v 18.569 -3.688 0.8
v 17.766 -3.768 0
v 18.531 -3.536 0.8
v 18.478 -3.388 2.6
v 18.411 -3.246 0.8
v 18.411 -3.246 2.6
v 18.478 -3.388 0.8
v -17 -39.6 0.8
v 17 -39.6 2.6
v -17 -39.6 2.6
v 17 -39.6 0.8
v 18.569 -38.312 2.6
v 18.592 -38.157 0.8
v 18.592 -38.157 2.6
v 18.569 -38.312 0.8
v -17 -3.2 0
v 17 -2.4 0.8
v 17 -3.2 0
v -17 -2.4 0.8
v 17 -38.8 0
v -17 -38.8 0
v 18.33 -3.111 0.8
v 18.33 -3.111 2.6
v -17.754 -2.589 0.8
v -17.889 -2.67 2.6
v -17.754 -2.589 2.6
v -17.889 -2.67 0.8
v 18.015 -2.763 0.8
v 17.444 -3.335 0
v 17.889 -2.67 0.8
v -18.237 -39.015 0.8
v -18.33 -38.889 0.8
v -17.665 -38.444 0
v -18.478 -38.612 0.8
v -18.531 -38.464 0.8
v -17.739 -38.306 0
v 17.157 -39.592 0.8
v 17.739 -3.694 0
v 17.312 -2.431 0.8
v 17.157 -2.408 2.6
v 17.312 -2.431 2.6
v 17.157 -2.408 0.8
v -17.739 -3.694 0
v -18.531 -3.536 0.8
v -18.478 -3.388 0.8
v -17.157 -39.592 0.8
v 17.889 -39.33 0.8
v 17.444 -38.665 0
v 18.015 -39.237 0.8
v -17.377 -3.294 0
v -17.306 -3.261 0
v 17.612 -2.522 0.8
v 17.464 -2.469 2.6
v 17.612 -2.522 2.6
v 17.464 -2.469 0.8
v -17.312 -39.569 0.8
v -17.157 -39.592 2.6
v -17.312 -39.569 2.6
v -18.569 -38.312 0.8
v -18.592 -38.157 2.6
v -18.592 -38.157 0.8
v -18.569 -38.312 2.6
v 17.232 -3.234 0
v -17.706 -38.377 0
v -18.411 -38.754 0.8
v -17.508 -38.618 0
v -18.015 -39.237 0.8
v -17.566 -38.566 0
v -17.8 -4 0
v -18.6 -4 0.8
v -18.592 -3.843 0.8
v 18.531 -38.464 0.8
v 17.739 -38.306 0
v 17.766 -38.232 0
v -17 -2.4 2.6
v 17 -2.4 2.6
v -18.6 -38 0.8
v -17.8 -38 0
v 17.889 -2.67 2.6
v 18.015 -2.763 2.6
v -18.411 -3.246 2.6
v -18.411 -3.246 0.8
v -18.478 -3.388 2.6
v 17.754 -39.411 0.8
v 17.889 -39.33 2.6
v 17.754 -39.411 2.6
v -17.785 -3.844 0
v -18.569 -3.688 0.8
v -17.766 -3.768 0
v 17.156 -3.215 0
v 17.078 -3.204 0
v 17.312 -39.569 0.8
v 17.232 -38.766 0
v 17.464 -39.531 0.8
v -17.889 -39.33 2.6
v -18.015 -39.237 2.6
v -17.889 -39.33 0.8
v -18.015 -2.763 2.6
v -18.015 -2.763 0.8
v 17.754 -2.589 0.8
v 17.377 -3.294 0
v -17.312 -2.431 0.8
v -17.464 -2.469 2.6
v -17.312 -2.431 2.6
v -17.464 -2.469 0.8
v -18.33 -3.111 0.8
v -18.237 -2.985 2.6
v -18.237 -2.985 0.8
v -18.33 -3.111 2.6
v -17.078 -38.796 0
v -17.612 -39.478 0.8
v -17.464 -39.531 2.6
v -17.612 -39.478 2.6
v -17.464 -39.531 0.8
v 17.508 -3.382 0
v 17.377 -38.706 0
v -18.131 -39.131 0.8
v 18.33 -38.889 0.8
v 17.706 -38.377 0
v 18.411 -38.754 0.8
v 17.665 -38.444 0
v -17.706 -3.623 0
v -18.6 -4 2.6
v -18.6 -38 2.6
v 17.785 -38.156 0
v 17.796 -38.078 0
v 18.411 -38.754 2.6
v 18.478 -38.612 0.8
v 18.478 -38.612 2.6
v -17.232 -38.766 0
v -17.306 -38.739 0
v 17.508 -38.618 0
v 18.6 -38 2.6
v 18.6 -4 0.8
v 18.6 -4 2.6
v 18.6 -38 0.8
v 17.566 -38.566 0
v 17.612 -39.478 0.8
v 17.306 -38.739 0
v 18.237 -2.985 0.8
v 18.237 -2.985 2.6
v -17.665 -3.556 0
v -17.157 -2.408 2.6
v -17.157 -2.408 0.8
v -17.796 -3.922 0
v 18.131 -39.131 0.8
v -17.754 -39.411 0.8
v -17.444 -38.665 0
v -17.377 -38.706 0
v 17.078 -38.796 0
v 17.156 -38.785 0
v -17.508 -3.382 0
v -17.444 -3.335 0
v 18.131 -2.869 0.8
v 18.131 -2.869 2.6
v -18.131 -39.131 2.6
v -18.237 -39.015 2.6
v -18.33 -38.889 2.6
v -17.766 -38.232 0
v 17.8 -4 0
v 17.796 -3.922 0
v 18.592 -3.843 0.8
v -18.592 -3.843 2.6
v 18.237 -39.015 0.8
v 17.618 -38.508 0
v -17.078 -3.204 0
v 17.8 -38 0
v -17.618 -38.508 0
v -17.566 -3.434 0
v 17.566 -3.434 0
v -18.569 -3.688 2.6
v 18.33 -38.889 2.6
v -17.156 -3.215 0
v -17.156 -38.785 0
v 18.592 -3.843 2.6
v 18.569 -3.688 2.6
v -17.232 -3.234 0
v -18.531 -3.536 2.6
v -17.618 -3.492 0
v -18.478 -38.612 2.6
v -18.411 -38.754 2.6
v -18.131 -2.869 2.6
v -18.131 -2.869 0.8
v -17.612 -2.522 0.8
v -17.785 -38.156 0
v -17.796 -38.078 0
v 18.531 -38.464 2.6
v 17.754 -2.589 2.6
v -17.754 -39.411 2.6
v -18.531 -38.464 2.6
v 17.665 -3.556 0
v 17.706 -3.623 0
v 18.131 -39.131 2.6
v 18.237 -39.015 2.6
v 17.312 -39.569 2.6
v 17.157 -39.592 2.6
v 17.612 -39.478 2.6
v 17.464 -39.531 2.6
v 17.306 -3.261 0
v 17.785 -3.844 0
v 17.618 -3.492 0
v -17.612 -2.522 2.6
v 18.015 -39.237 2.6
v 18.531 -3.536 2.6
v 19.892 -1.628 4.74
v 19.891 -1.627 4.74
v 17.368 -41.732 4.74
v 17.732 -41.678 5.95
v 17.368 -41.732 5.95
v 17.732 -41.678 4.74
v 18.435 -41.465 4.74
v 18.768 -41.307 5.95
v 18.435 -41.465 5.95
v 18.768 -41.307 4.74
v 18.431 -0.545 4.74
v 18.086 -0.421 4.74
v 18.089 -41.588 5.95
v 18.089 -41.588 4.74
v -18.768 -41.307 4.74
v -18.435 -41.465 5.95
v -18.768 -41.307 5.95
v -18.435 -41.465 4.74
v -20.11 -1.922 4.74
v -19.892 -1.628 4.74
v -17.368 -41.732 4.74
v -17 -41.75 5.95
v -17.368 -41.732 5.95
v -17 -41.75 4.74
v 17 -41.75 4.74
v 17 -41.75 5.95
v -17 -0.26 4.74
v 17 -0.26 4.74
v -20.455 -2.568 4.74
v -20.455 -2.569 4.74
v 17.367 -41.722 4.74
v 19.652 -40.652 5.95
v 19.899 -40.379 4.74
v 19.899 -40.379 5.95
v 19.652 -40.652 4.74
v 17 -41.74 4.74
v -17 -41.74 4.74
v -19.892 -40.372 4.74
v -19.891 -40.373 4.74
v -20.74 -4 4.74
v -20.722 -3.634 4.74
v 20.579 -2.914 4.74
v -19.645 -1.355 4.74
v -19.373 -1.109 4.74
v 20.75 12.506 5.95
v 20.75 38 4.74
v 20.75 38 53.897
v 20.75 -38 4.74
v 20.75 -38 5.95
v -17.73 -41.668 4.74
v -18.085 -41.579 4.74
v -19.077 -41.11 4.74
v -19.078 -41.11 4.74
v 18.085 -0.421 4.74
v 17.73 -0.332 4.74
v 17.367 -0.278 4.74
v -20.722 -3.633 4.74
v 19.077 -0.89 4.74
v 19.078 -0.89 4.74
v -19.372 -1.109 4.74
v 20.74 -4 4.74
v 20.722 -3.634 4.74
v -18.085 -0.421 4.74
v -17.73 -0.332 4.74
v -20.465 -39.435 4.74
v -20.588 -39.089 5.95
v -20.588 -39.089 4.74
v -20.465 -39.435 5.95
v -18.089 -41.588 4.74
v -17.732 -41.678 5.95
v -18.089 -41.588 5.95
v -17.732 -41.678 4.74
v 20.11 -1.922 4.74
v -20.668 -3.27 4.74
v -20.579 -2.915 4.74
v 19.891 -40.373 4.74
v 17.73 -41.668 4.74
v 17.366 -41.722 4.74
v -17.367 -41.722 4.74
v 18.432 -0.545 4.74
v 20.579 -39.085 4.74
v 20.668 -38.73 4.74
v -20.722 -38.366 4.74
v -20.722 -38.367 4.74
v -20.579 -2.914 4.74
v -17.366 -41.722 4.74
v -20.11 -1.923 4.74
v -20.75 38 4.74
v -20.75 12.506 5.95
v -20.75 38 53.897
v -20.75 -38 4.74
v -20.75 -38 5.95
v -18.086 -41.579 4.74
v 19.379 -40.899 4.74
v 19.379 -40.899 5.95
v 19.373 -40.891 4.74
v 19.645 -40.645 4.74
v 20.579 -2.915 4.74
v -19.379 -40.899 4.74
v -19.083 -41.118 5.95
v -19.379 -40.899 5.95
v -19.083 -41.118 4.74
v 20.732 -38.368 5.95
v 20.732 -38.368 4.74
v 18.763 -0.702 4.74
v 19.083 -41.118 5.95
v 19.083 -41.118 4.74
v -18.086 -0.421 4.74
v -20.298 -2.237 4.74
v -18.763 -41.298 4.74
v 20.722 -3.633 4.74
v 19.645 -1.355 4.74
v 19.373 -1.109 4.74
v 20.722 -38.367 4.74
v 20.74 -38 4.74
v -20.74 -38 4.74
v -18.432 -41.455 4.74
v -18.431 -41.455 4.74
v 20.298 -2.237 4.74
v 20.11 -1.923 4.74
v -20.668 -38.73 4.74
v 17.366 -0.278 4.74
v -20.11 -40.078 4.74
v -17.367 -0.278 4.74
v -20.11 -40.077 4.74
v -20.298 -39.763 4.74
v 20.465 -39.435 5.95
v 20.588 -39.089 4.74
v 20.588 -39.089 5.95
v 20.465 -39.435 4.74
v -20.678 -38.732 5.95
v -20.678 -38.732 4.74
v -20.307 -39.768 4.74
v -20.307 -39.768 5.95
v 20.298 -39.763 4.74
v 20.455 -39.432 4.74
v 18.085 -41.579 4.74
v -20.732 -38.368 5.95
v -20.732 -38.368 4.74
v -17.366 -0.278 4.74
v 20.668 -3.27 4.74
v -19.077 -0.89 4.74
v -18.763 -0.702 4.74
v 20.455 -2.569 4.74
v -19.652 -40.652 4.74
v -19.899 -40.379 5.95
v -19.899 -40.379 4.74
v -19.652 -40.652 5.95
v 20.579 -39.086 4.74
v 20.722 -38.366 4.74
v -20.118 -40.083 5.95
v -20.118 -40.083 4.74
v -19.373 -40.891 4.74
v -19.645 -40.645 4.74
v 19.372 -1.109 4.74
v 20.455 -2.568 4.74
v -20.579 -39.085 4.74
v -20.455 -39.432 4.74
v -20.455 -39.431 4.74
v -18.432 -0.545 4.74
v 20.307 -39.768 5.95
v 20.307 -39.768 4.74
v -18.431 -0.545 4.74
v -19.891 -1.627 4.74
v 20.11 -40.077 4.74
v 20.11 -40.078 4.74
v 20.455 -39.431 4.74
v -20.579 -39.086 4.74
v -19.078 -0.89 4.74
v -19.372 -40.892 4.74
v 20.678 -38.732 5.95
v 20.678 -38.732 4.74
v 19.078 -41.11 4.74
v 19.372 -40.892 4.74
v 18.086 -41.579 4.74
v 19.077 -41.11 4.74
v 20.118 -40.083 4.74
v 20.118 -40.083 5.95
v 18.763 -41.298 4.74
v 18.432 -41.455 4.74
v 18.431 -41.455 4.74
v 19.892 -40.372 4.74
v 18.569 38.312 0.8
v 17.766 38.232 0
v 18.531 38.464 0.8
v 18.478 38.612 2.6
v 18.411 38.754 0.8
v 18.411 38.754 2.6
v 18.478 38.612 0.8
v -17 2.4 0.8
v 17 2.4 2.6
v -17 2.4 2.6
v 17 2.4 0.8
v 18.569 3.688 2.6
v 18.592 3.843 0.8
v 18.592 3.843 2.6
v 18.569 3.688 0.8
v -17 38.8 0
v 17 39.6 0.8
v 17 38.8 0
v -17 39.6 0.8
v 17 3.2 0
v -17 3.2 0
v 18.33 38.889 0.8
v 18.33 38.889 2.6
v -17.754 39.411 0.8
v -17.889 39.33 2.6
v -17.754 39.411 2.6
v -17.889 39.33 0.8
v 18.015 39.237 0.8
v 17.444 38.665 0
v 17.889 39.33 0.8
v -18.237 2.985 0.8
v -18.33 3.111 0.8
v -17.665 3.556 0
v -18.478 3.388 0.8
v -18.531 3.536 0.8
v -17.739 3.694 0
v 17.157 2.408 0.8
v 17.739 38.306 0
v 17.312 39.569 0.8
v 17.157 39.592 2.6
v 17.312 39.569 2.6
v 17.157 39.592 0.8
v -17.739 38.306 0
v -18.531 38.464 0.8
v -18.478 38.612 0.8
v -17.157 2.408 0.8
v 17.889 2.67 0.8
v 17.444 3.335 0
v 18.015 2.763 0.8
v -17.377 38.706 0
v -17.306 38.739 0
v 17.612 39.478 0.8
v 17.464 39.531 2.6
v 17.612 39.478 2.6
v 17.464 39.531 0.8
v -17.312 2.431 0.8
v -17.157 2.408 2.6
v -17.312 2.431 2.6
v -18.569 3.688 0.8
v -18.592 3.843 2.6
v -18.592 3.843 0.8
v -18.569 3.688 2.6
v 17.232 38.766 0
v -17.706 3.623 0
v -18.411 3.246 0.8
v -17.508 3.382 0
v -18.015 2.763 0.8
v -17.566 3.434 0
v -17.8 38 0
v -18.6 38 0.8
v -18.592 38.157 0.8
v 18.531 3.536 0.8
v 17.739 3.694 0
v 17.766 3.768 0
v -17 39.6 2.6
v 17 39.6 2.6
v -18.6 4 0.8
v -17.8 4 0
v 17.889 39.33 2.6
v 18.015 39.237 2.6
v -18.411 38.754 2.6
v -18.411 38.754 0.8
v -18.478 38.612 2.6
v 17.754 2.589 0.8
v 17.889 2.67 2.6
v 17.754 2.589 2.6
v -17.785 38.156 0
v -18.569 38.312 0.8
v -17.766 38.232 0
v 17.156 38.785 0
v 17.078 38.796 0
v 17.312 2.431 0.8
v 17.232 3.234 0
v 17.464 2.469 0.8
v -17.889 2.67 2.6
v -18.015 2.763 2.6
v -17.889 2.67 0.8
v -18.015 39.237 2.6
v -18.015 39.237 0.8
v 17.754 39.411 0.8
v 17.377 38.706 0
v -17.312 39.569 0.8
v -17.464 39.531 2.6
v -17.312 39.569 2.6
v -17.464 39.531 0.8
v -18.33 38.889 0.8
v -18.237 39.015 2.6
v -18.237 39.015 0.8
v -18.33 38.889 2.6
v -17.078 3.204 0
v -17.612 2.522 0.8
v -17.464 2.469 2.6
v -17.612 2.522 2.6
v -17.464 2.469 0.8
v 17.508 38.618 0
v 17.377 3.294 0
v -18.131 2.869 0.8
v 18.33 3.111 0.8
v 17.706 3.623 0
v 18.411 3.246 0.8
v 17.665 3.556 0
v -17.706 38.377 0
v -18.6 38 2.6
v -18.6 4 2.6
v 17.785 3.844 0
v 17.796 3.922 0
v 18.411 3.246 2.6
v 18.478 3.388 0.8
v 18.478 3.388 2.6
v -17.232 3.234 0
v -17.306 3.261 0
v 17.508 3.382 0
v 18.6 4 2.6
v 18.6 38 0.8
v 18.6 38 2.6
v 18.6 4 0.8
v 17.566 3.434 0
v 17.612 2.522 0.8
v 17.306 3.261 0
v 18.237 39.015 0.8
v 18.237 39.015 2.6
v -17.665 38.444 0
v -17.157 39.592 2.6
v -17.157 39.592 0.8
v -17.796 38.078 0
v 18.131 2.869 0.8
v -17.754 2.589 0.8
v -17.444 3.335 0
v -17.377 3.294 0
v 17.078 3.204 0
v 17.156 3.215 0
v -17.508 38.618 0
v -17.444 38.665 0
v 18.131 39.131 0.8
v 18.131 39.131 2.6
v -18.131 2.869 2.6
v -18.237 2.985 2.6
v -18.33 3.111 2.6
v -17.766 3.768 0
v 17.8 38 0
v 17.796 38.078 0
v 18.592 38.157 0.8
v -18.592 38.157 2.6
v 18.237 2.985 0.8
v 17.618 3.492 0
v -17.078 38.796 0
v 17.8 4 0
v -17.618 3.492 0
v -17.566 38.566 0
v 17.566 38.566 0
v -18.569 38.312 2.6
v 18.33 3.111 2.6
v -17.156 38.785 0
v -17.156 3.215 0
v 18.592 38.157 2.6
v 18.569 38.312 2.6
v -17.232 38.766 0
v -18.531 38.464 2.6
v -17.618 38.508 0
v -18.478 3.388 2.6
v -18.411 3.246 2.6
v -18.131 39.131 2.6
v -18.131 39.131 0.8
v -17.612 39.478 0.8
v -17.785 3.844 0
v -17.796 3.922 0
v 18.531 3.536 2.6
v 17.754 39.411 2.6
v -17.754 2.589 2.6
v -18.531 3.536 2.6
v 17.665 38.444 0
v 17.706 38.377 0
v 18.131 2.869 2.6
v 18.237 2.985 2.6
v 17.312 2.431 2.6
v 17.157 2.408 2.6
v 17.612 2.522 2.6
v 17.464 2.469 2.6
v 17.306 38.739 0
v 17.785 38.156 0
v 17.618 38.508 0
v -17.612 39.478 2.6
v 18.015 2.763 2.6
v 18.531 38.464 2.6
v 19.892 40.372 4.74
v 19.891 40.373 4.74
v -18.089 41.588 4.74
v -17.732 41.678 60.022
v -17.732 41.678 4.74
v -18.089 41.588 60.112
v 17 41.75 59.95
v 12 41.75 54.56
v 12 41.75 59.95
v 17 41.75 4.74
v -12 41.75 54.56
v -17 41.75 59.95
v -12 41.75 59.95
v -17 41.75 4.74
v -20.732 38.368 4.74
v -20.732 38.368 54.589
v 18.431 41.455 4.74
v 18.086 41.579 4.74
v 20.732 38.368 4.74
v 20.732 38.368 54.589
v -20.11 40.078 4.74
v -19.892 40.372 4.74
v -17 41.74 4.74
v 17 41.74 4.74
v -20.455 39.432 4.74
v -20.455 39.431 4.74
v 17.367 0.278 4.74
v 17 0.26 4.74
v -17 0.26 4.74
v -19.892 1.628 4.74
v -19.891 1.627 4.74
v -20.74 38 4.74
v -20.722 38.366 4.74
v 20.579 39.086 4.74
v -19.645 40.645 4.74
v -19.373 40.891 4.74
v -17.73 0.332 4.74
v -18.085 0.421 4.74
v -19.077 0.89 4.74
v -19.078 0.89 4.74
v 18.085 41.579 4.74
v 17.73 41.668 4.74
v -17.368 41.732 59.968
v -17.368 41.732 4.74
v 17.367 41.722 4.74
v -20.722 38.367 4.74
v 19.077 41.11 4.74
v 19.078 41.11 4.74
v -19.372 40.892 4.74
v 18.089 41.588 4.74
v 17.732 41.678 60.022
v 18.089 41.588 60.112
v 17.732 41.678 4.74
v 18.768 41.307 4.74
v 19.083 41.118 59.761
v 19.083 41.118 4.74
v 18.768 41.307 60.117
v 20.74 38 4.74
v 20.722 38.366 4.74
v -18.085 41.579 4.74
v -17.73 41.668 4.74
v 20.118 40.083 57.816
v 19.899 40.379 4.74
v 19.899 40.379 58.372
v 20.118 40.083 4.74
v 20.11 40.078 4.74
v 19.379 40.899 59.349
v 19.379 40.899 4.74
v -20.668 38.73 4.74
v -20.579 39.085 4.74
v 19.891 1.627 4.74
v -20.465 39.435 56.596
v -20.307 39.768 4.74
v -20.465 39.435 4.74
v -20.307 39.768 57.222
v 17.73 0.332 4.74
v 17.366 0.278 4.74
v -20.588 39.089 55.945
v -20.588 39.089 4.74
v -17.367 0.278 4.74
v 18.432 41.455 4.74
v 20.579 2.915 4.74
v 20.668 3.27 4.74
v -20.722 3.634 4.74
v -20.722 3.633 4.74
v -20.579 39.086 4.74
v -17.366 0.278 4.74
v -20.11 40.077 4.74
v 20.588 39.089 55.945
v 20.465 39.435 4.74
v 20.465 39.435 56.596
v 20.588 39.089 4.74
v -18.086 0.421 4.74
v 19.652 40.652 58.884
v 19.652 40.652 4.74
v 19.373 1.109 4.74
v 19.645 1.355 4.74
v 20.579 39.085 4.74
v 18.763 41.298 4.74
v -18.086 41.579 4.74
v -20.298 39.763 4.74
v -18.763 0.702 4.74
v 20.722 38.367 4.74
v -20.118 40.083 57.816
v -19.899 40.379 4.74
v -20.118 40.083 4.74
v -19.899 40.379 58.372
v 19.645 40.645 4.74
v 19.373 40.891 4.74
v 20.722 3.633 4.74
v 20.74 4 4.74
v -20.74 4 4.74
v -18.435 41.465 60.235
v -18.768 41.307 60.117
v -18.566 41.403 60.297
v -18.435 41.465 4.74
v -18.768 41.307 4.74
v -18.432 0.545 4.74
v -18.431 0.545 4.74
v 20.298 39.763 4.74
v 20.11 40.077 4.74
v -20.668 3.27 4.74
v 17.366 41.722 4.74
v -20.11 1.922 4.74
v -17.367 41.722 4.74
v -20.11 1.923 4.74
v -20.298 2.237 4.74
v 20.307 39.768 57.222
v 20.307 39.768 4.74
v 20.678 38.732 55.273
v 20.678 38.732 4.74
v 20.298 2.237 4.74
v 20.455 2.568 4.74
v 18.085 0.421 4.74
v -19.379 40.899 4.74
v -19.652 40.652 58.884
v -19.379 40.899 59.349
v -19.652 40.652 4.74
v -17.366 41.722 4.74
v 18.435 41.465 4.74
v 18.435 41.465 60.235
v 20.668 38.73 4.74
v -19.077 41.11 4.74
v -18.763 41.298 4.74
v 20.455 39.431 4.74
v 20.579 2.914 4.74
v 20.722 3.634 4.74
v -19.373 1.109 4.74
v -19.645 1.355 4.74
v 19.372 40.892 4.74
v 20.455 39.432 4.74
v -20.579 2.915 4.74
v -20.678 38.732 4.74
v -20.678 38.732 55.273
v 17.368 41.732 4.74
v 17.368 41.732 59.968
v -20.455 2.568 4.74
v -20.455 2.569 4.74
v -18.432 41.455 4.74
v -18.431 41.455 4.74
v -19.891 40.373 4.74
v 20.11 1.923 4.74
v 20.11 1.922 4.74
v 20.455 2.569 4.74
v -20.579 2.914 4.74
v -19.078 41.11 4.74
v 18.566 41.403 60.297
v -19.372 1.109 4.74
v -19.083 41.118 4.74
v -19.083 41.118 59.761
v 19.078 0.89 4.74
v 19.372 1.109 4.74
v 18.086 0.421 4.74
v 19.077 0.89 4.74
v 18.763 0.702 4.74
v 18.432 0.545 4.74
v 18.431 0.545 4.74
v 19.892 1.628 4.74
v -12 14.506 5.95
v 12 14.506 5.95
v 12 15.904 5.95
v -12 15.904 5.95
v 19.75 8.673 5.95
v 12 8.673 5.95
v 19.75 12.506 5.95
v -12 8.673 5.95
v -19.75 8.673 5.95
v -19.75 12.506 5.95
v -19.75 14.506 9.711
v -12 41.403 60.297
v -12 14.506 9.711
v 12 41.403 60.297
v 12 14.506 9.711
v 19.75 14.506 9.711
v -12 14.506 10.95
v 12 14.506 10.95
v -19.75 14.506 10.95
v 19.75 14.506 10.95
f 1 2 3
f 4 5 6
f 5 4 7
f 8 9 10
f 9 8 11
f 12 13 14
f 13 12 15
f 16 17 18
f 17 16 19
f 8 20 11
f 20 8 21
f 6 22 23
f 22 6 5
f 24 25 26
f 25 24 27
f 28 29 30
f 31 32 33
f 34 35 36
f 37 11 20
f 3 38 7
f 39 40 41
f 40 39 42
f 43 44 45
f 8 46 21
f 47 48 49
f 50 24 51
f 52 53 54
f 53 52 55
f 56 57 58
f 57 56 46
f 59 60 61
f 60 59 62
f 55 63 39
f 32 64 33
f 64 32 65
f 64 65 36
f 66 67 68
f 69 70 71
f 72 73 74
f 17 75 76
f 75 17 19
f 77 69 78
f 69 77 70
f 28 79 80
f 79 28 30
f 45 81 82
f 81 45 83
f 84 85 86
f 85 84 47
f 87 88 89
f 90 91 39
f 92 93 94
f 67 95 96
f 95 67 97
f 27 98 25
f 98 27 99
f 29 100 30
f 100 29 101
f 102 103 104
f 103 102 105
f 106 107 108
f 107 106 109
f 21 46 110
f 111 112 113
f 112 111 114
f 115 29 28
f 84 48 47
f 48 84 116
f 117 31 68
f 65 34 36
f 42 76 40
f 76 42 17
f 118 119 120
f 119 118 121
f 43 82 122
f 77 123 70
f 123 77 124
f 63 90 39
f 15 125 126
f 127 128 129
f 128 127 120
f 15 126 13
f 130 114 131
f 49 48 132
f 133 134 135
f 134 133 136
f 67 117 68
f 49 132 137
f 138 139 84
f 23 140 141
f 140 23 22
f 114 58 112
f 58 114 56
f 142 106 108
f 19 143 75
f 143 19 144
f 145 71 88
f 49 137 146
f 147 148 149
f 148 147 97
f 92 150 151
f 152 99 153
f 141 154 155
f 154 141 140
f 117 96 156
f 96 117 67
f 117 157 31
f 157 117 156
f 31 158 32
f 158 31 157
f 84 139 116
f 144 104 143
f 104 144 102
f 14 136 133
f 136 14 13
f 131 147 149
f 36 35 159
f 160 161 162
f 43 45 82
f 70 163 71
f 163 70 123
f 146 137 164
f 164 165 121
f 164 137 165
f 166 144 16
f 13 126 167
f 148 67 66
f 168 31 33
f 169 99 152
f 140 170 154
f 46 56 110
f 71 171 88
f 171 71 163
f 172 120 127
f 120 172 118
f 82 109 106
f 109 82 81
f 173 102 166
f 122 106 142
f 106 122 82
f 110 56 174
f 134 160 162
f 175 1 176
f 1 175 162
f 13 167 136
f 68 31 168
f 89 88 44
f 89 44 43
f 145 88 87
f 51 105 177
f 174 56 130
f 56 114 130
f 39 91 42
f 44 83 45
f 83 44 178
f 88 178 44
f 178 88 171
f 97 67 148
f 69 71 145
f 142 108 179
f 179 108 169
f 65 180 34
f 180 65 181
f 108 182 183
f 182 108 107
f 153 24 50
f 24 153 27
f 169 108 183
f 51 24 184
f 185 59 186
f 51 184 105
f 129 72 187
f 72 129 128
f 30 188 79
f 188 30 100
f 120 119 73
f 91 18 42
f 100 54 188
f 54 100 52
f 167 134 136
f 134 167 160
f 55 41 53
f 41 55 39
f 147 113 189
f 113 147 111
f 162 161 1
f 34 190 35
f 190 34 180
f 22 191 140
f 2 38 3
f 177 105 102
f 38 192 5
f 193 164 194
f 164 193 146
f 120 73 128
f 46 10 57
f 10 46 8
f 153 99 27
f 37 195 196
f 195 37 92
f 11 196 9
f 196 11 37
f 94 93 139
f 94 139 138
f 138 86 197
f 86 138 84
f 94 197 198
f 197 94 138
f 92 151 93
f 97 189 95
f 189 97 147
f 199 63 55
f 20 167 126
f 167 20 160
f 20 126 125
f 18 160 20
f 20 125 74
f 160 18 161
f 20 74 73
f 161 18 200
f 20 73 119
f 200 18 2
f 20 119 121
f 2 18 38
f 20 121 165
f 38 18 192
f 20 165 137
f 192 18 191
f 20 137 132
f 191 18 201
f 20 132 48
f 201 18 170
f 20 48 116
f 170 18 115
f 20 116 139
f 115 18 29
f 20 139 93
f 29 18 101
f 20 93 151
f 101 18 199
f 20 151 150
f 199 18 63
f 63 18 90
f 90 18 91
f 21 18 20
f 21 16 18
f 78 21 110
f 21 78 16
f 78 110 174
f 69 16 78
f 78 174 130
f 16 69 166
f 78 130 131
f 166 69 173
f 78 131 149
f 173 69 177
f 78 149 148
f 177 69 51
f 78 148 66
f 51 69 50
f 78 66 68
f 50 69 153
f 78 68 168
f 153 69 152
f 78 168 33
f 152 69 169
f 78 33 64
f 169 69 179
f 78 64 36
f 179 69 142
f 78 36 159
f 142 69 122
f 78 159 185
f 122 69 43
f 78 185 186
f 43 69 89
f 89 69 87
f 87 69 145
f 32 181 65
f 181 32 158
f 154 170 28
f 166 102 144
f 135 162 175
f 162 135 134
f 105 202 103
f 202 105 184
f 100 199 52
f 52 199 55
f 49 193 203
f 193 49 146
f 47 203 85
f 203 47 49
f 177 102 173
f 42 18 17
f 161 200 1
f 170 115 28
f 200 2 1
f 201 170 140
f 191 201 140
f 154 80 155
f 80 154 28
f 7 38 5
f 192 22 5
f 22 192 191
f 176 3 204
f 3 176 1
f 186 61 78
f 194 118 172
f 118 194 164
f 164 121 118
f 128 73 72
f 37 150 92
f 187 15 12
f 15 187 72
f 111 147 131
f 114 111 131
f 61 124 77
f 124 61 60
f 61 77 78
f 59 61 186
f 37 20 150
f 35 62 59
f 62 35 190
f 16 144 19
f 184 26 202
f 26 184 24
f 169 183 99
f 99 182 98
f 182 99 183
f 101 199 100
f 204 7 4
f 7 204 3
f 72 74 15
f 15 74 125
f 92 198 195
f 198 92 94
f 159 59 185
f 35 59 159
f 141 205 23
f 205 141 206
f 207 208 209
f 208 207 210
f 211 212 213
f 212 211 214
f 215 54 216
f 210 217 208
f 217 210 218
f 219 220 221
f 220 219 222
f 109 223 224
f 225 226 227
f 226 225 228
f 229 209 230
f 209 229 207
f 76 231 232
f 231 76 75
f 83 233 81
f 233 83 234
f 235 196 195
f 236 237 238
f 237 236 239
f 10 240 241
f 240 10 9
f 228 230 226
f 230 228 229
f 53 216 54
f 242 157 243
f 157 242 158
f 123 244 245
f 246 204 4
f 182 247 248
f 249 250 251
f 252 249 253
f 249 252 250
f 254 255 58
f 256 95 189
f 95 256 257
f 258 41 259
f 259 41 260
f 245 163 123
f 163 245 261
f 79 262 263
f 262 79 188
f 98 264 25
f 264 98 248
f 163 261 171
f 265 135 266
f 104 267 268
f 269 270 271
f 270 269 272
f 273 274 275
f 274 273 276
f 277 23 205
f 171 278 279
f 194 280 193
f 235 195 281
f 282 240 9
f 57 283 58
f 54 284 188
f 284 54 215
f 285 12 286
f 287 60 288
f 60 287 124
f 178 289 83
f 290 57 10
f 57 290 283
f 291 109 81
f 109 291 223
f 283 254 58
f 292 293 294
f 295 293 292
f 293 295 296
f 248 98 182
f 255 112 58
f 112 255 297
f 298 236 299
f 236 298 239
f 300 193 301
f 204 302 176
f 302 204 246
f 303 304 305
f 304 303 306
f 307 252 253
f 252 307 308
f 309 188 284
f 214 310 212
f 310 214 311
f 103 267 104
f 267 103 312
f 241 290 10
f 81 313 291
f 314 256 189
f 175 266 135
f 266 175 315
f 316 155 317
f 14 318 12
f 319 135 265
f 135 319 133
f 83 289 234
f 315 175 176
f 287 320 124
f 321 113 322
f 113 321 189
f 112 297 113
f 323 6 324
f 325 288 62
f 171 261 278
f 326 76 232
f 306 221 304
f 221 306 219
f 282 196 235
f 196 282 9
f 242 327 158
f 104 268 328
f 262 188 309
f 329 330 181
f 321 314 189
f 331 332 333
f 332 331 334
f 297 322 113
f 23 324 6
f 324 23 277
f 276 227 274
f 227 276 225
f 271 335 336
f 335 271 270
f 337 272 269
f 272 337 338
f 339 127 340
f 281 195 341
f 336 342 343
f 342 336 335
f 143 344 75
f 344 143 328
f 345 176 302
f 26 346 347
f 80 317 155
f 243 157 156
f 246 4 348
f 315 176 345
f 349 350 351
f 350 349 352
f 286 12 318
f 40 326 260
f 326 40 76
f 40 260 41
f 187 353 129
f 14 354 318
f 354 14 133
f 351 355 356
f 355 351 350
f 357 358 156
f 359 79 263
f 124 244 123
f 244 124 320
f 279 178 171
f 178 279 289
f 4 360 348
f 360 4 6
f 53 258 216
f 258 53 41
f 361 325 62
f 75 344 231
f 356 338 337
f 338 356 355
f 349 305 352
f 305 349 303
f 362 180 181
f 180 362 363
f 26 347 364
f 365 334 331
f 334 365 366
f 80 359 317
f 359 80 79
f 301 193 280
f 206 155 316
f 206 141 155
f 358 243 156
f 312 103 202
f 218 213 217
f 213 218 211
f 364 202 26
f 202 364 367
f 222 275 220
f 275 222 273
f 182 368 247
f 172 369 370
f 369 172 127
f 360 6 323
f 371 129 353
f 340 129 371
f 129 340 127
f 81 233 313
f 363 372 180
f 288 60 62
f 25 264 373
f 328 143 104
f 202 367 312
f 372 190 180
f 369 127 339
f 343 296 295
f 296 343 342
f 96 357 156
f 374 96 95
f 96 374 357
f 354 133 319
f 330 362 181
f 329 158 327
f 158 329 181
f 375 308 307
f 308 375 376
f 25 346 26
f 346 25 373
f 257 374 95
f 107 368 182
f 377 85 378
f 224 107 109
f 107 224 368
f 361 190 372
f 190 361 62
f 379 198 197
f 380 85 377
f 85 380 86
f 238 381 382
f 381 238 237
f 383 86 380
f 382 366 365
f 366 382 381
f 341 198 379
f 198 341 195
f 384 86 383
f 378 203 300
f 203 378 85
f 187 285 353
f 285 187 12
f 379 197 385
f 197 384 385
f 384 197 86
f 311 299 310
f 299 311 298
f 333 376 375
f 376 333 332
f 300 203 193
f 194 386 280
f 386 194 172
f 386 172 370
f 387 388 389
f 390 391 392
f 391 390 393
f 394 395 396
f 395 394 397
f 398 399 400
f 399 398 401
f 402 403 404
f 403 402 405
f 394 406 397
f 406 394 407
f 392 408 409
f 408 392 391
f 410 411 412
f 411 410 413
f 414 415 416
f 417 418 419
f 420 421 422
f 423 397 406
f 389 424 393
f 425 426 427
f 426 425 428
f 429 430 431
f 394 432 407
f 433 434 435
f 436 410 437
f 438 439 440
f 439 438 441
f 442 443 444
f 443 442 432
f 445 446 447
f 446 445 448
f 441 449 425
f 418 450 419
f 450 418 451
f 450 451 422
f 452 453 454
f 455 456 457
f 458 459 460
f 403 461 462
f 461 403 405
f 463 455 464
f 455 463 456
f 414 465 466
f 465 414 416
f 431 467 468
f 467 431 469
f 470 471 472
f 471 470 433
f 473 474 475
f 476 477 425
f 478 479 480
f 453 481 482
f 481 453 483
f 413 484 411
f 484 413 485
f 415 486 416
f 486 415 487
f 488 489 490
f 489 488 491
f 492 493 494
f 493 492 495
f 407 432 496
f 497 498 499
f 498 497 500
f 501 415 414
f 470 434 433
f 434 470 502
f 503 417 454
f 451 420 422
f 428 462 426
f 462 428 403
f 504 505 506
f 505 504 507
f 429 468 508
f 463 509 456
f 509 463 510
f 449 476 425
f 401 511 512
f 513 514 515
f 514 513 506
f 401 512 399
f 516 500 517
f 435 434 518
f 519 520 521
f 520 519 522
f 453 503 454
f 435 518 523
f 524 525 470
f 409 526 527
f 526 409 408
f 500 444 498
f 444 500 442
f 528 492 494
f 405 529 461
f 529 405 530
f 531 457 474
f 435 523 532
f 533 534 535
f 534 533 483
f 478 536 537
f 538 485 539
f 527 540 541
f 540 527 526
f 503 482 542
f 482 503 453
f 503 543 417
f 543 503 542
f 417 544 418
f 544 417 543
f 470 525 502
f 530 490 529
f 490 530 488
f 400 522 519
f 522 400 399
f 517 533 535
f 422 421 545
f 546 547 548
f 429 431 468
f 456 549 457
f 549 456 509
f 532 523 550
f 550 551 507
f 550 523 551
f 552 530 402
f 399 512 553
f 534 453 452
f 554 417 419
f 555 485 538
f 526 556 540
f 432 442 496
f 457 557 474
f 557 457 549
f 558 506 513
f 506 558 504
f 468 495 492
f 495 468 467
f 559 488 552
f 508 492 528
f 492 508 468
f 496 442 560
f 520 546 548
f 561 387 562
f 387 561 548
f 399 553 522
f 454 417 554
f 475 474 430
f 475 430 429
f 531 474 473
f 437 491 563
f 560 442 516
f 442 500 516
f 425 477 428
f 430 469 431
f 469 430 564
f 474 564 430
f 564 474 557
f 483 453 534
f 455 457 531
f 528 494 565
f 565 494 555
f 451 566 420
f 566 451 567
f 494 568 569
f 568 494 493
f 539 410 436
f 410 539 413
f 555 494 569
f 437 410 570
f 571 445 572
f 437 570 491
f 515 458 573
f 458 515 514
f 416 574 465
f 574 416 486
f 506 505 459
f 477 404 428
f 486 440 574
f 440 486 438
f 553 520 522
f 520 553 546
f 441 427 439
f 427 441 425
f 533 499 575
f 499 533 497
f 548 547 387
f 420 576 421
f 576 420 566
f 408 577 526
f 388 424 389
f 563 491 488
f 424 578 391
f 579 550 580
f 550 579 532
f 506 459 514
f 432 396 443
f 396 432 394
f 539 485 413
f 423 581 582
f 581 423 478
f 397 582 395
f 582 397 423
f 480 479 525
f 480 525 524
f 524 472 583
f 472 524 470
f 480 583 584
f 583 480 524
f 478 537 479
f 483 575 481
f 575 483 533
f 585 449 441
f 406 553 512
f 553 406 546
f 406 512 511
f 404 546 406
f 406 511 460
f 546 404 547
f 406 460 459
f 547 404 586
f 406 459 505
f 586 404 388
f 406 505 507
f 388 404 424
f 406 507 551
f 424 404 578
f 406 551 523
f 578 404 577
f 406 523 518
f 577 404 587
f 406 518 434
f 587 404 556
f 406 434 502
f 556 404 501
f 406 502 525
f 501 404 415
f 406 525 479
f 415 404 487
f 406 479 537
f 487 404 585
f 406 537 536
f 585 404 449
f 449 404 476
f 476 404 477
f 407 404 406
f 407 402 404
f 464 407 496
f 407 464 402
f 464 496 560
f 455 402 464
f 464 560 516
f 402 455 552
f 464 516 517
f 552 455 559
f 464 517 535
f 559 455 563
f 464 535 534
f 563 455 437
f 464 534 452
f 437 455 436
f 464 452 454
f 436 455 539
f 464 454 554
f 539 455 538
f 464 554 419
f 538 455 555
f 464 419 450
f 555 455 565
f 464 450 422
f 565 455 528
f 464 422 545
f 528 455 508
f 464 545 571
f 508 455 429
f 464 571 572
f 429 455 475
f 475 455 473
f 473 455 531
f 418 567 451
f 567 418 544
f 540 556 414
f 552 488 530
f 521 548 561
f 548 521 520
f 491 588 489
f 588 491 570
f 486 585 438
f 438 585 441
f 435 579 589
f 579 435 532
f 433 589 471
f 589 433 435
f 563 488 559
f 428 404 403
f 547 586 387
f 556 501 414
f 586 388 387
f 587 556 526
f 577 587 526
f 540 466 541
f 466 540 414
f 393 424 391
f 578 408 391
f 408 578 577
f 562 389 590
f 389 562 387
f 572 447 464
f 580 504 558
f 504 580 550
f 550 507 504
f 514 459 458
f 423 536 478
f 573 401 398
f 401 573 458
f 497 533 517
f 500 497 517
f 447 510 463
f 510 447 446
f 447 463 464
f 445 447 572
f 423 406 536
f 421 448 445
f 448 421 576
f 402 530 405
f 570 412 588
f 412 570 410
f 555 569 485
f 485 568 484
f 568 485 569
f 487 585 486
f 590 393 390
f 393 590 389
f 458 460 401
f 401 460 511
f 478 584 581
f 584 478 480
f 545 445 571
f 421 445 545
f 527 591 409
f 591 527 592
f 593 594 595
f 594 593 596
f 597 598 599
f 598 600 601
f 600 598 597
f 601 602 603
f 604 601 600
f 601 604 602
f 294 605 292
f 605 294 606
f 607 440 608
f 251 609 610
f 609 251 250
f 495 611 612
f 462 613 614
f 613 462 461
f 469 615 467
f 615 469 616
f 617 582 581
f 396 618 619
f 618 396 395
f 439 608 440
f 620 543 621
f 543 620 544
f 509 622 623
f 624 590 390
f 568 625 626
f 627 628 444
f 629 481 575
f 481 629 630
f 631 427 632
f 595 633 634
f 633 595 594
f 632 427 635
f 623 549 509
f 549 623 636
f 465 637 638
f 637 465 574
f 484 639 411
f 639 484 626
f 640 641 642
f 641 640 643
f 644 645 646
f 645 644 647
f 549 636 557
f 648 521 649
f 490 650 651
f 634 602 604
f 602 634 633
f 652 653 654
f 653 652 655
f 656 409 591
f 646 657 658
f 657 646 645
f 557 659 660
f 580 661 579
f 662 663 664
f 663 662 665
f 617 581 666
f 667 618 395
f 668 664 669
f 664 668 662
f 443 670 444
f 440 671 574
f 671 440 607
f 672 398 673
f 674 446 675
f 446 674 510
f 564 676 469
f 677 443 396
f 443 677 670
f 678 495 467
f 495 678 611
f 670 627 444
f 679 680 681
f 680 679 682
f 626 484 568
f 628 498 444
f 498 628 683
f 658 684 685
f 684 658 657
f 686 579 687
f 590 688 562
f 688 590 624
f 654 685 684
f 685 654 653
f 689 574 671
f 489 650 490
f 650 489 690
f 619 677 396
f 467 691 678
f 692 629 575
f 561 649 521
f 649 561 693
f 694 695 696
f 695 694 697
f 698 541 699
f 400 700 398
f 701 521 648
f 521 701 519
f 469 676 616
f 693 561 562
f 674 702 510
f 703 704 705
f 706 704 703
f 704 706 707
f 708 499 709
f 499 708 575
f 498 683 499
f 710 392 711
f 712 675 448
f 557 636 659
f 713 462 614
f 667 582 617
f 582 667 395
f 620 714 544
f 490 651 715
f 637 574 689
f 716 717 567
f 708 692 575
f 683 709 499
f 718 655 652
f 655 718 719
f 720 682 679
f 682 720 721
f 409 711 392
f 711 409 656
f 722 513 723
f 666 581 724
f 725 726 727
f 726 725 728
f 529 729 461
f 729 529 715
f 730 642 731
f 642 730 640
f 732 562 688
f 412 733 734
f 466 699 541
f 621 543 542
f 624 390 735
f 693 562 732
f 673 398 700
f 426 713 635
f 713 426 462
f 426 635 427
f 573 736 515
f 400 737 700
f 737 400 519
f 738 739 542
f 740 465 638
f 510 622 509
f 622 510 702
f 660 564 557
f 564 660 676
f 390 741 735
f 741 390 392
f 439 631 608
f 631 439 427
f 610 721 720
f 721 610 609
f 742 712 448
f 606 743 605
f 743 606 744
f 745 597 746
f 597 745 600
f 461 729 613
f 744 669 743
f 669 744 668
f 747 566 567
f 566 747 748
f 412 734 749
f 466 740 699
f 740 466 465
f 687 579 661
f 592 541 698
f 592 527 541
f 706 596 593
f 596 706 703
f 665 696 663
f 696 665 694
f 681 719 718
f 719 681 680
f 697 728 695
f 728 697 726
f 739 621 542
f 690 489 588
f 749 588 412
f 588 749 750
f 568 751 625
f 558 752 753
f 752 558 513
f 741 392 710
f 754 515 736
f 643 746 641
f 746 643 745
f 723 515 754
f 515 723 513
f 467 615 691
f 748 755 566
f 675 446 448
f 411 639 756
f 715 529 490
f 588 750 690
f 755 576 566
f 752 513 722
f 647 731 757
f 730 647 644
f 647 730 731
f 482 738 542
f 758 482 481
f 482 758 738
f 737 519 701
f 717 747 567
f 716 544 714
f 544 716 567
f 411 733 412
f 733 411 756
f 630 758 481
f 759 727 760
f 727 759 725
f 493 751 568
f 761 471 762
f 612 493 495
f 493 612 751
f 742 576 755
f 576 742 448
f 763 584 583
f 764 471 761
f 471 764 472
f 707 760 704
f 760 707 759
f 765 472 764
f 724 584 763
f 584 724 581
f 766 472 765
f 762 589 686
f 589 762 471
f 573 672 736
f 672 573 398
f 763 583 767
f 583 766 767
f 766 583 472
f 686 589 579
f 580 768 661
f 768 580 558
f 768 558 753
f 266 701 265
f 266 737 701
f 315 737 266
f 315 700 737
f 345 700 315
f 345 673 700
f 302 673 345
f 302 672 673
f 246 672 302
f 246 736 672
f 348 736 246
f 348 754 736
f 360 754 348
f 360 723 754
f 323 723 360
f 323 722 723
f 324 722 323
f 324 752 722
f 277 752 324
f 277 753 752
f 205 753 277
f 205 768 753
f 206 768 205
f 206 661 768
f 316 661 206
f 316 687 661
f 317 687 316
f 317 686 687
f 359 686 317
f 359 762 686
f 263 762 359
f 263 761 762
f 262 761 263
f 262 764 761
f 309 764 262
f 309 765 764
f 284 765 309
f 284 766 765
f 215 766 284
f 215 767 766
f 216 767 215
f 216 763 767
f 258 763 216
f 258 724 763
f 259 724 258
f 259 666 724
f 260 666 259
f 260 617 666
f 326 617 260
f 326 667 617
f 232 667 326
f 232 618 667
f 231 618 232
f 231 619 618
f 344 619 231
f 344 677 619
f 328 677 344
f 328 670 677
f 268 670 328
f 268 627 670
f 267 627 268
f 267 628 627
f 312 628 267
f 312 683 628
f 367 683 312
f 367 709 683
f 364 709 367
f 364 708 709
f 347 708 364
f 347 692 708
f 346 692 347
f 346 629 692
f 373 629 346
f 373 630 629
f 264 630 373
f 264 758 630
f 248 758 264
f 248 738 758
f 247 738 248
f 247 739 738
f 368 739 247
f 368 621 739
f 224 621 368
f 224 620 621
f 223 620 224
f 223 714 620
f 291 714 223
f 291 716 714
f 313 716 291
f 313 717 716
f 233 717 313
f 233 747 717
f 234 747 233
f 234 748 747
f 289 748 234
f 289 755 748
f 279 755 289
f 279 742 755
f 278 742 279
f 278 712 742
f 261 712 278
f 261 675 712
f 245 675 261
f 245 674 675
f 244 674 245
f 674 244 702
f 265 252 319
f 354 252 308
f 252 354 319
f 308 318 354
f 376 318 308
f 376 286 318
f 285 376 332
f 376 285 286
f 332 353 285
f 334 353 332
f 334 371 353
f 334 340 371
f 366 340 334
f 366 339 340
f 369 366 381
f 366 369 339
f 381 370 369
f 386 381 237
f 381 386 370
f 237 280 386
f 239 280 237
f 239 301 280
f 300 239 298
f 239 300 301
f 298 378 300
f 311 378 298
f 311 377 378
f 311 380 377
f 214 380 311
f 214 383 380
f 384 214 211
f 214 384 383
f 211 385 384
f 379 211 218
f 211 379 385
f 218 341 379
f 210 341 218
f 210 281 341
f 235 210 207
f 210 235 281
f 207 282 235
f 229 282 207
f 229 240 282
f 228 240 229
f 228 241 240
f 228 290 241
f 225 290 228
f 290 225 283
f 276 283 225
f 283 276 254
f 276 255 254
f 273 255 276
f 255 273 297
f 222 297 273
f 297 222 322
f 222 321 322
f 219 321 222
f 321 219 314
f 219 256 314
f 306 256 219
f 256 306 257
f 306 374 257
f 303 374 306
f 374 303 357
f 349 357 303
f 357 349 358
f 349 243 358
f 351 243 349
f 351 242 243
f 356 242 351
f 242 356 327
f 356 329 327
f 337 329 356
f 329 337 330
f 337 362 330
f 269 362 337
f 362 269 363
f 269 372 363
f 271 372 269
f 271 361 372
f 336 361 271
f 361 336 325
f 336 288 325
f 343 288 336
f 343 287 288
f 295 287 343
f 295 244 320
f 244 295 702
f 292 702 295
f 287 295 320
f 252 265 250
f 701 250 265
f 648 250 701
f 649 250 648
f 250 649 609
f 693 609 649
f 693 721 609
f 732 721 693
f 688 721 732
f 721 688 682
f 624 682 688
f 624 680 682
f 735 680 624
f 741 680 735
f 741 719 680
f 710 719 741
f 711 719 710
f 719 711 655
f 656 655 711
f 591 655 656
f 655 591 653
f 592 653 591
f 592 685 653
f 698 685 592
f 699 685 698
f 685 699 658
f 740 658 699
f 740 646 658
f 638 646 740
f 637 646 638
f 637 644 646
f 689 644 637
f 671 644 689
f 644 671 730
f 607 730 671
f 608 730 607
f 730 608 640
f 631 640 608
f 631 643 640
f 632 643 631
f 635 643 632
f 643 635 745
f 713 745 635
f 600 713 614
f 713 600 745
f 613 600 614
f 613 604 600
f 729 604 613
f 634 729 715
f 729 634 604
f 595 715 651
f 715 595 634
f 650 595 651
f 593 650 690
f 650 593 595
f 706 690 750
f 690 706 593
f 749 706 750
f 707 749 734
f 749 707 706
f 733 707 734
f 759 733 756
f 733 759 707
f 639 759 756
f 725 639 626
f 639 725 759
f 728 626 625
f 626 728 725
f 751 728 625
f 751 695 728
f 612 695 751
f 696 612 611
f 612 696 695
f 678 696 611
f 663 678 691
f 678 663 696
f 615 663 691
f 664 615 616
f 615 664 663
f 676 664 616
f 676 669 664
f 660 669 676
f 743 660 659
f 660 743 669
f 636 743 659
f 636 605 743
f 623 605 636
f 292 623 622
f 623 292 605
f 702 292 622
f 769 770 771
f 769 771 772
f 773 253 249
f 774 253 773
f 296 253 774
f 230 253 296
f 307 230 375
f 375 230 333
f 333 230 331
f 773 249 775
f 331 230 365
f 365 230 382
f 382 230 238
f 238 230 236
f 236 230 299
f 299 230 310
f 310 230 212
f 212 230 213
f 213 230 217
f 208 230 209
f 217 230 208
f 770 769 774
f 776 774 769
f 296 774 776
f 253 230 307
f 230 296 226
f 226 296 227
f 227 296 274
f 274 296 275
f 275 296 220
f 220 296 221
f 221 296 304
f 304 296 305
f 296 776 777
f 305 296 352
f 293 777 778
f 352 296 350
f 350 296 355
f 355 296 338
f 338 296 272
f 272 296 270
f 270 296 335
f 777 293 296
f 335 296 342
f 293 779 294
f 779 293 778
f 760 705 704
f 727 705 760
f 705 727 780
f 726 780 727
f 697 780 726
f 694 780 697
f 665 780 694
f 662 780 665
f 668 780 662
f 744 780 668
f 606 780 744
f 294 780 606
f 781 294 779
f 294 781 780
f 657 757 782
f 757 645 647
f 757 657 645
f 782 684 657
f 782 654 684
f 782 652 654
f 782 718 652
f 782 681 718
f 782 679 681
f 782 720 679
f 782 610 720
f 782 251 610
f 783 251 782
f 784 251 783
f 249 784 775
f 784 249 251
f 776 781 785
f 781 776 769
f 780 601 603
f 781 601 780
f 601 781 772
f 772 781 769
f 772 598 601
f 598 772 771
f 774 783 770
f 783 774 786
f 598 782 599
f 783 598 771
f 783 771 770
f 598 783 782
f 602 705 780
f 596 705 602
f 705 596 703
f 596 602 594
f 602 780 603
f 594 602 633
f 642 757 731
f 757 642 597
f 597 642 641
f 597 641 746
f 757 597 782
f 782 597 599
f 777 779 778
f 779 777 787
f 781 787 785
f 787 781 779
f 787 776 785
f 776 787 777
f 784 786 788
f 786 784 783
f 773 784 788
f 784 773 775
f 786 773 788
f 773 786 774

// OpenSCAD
// BambuMaker: Gridfinity Watch Display Stand
// A 1x2 Gridfinity bin base with a leaning watch display wedge on top.
// Print in display orientation (feet flat on bed), no supports.
//
// @param display_angle 62
// @param backrest_height 55
// @param strap_slot_width 24
// @param strap_channel_width 24
// @param strap_channel_depth 3
// @param nub_height 5
// @param top_chamfer 1

// ---------------------------------------------------------------------------
// Tunable parameters
// ---------------------------------------------------------------------------
display_angle        = 62;   // backrest angle from horizontal (deg)
backrest_height      = 55;   // top of wedge above the base floor (mm)
strap_slot_width     = 24;   // gap between the two toe nubs (mm)
strap_channel_width  = 24;   // width of the open groove up the backrest (mm)
strap_channel_depth  = 3;    // depth of that groove (mm)
nub_height           = 5;    // height of the toe-stop nubs (mm)
top_chamfer          = 1;    // chamfer on the sharp back-top ridge (mm)

// --- Gridfinity (fit-critical, "Zack" profile) ---
grid       = 42;    // standard cell pitch (mm)
cells_x    = 1;
cells_y    = 2;
clearance  = 0.25;  // per-side inset from the grid -> drop-in fit
body_r     = 3.75;  // outer corner radius

foot_ch1   = 0.8;   // bottom 45 deg chamfer height
foot_vert  = 1.8;   // vertical mid section height
foot_ch2   = 2.15;  // top 45 deg chamfer height
floor_thick = 1.2;  // solid floor tying the feet together

$fn = 64;

// ---------------------------------------------------------------------------
// Derived values
// ---------------------------------------------------------------------------
eps    = 0.01;
BIG    = 400;

body_x = cells_x * grid - 2 * clearance;   // 41.5
body_y = cells_y * grid - 2 * clearance;   // 83.5
cell   = grid - 2 * clearance;             // 41.5

foot_h   = foot_ch1 + foot_vert + foot_ch2; // 4.75
base_top = foot_h + floor_thick;            // 5.95 (top of base floor)

// foot cross-section sizes / corner radii at each level
foot_top   = cell;                 // 41.5
foot_mid   = cell - 2 * foot_ch2;  // 37.2
foot_bot   = foot_mid - 2 * foot_ch1; // 35.6
foot_top_r = body_r;               // 3.75
foot_mid_r = body_r - foot_ch2;    // 1.6
foot_bot_r = foot_mid_r - foot_ch1; // 0.8

// wedge geometry (z measured from the base floor top)
back_y   = body_y / 2;                       // back vertical face position
run      = backrest_height / tan(display_angle);
toe_y    = back_y - run;                      // toe (front-bottom of backrest)
ramp_len = backrest_height / sin(display_angle);

// toe nub footprint in X (flanking the central strap gap)
nub_x_inner = strap_slot_width / 2;
nub_x_outer = body_x / 2 - 1;     // 1mm margin from the side
nub_front   = nub_height;         // 45 deg front face

// ---------------------------------------------------------------------------
// 2D helpers
// ---------------------------------------------------------------------------
module rounded_square(size, r) {
    offset(r = r) square([size - 2 * r, size - 2 * r], center = true);
}

module rounded_rect(sx, sy, r) {
    offset(r = r) square([sx - 2 * r, sy - 2 * r], center = true);
}

// ---------------------------------------------------------------------------
// Gridfinity foot (one per cell) — swept rounded square keeps corners filleted
// ---------------------------------------------------------------------------
module foot() {
    // 1. bottom 45 deg chamfer
    hull() {
        linear_extrude(eps) rounded_square(foot_bot, foot_bot_r);
        translate([0, 0, foot_ch1])
            linear_extrude(eps) rounded_square(foot_mid, foot_mid_r);
    }
    // 2. vertical mid section
    translate([0, 0, foot_ch1])
        linear_extrude(foot_vert + eps) rounded_square(foot_mid, foot_mid_r);
    // 3. top 45 deg chamfer up to full body cross-section
    translate([0, 0, foot_ch1 + foot_vert])
        hull() {
            linear_extrude(eps) rounded_square(foot_mid, foot_mid_r);
            translate([0, 0, foot_ch2])
                linear_extrude(eps) rounded_square(foot_top, foot_top_r);
        }
}

module base() {
    // one foot centered in each 42mm cell
    for (i = [0 : cells_x - 1], j = [0 : cells_y - 1])
        translate([(i + 0.5) * grid - cells_x * grid / 2,
                   (j + 0.5) * grid - cells_y * grid / 2, 0])
            foot();

    // solid floor spanning the whole body, tying the feet together
    translate([0, 0, foot_h - eps])
        linear_extrude(floor_thick + eps)
            rounded_rect(body_x, body_y, body_r);
}

// ---------------------------------------------------------------------------
// Display wedge (built with z = 0 at the base floor top)
// ---------------------------------------------------------------------------
// Solid right-triangle wedge: vertical back face, flat bottom, sloped backrest,
// clipped to the rounded base footprint so it never overhangs the base.
module wedge_solid() {
    intersection() {
        translate([0, 0, -eps])
            linear_extrude(backrest_height + 5)
                rounded_rect(body_x, body_y, body_r);

        // keep everything below the backrest plane (slope through the toe line)
        translate([0, toe_y, 0])
            rotate([display_angle, 0, 0])
                translate([0, 0, -BIG / 2])
                    cube([body_x + 20, BIG, BIG], center = true);
    }
}

// Open-topped strap groove cut along the backrest centerline, aligned with the
// toe gap. Worked in the ramp's local frame: lz = 0 is the backrest surface,
// +ly runs up the slope. Cutting only the top few mm keeps it an open groove.
module groove_cutter() {
    translate([0, toe_y, 0])
        rotate([display_angle, 0, 0])
            translate([-strap_channel_width / 2, -3, -strap_channel_depth])
                cube([strap_channel_width, ramp_len + 3,
                      strap_channel_depth + 20]);
}

// 45 deg chamfer along the sharp back-top ridge.
module back_ridge_chamfer() {
    translate([0, back_y, backrest_height])
        rotate([45, 0, 0])
            cube([body_x + 2, top_chamfer * sqrt(2), top_chamfer * sqrt(2)],
                 center = true);
}

// One triangular toe nub spanning x = [x0, x1]. Vertical catch face toward the
// watch (+Y), shallow ramp on the front (-Y), flat underside. The back/bottom
// overlap the wedge and floor so the nub fuses into one solid body.
nub_overlap = 2;   // penetration back into the wedge (fusion)
nub_sink    = 1;   // penetration down into the floor (fusion)
module nub(x0, x1) {
    // multmatrix maps the (Y,Z) profile, extruded along its local Z, onto X.
    translate([x0, 0, 0])
        multmatrix([[0, 0, 1, 0],
                    [1, 0, 0, 0],
                    [0, 1, 0, 0],
                    [0, 0, 0, 1]])
            linear_extrude(x1 - x0)
                polygon([[toe_y + nub_overlap, -nub_sink],
                         [toe_y + nub_overlap, nub_height],
                         [toe_y - nub_front,   -nub_sink]]);
}

module stand() {
    union() {
        base();

        translate([0, 0, base_top]) {
            difference() {
                wedge_solid();
                groove_cutter();
                back_ridge_chamfer();
            }
            nub(-nub_x_outer, -nub_x_inner);
            nub( nub_x_inner,  nub_x_outer);
        }
    }
}

stand();
